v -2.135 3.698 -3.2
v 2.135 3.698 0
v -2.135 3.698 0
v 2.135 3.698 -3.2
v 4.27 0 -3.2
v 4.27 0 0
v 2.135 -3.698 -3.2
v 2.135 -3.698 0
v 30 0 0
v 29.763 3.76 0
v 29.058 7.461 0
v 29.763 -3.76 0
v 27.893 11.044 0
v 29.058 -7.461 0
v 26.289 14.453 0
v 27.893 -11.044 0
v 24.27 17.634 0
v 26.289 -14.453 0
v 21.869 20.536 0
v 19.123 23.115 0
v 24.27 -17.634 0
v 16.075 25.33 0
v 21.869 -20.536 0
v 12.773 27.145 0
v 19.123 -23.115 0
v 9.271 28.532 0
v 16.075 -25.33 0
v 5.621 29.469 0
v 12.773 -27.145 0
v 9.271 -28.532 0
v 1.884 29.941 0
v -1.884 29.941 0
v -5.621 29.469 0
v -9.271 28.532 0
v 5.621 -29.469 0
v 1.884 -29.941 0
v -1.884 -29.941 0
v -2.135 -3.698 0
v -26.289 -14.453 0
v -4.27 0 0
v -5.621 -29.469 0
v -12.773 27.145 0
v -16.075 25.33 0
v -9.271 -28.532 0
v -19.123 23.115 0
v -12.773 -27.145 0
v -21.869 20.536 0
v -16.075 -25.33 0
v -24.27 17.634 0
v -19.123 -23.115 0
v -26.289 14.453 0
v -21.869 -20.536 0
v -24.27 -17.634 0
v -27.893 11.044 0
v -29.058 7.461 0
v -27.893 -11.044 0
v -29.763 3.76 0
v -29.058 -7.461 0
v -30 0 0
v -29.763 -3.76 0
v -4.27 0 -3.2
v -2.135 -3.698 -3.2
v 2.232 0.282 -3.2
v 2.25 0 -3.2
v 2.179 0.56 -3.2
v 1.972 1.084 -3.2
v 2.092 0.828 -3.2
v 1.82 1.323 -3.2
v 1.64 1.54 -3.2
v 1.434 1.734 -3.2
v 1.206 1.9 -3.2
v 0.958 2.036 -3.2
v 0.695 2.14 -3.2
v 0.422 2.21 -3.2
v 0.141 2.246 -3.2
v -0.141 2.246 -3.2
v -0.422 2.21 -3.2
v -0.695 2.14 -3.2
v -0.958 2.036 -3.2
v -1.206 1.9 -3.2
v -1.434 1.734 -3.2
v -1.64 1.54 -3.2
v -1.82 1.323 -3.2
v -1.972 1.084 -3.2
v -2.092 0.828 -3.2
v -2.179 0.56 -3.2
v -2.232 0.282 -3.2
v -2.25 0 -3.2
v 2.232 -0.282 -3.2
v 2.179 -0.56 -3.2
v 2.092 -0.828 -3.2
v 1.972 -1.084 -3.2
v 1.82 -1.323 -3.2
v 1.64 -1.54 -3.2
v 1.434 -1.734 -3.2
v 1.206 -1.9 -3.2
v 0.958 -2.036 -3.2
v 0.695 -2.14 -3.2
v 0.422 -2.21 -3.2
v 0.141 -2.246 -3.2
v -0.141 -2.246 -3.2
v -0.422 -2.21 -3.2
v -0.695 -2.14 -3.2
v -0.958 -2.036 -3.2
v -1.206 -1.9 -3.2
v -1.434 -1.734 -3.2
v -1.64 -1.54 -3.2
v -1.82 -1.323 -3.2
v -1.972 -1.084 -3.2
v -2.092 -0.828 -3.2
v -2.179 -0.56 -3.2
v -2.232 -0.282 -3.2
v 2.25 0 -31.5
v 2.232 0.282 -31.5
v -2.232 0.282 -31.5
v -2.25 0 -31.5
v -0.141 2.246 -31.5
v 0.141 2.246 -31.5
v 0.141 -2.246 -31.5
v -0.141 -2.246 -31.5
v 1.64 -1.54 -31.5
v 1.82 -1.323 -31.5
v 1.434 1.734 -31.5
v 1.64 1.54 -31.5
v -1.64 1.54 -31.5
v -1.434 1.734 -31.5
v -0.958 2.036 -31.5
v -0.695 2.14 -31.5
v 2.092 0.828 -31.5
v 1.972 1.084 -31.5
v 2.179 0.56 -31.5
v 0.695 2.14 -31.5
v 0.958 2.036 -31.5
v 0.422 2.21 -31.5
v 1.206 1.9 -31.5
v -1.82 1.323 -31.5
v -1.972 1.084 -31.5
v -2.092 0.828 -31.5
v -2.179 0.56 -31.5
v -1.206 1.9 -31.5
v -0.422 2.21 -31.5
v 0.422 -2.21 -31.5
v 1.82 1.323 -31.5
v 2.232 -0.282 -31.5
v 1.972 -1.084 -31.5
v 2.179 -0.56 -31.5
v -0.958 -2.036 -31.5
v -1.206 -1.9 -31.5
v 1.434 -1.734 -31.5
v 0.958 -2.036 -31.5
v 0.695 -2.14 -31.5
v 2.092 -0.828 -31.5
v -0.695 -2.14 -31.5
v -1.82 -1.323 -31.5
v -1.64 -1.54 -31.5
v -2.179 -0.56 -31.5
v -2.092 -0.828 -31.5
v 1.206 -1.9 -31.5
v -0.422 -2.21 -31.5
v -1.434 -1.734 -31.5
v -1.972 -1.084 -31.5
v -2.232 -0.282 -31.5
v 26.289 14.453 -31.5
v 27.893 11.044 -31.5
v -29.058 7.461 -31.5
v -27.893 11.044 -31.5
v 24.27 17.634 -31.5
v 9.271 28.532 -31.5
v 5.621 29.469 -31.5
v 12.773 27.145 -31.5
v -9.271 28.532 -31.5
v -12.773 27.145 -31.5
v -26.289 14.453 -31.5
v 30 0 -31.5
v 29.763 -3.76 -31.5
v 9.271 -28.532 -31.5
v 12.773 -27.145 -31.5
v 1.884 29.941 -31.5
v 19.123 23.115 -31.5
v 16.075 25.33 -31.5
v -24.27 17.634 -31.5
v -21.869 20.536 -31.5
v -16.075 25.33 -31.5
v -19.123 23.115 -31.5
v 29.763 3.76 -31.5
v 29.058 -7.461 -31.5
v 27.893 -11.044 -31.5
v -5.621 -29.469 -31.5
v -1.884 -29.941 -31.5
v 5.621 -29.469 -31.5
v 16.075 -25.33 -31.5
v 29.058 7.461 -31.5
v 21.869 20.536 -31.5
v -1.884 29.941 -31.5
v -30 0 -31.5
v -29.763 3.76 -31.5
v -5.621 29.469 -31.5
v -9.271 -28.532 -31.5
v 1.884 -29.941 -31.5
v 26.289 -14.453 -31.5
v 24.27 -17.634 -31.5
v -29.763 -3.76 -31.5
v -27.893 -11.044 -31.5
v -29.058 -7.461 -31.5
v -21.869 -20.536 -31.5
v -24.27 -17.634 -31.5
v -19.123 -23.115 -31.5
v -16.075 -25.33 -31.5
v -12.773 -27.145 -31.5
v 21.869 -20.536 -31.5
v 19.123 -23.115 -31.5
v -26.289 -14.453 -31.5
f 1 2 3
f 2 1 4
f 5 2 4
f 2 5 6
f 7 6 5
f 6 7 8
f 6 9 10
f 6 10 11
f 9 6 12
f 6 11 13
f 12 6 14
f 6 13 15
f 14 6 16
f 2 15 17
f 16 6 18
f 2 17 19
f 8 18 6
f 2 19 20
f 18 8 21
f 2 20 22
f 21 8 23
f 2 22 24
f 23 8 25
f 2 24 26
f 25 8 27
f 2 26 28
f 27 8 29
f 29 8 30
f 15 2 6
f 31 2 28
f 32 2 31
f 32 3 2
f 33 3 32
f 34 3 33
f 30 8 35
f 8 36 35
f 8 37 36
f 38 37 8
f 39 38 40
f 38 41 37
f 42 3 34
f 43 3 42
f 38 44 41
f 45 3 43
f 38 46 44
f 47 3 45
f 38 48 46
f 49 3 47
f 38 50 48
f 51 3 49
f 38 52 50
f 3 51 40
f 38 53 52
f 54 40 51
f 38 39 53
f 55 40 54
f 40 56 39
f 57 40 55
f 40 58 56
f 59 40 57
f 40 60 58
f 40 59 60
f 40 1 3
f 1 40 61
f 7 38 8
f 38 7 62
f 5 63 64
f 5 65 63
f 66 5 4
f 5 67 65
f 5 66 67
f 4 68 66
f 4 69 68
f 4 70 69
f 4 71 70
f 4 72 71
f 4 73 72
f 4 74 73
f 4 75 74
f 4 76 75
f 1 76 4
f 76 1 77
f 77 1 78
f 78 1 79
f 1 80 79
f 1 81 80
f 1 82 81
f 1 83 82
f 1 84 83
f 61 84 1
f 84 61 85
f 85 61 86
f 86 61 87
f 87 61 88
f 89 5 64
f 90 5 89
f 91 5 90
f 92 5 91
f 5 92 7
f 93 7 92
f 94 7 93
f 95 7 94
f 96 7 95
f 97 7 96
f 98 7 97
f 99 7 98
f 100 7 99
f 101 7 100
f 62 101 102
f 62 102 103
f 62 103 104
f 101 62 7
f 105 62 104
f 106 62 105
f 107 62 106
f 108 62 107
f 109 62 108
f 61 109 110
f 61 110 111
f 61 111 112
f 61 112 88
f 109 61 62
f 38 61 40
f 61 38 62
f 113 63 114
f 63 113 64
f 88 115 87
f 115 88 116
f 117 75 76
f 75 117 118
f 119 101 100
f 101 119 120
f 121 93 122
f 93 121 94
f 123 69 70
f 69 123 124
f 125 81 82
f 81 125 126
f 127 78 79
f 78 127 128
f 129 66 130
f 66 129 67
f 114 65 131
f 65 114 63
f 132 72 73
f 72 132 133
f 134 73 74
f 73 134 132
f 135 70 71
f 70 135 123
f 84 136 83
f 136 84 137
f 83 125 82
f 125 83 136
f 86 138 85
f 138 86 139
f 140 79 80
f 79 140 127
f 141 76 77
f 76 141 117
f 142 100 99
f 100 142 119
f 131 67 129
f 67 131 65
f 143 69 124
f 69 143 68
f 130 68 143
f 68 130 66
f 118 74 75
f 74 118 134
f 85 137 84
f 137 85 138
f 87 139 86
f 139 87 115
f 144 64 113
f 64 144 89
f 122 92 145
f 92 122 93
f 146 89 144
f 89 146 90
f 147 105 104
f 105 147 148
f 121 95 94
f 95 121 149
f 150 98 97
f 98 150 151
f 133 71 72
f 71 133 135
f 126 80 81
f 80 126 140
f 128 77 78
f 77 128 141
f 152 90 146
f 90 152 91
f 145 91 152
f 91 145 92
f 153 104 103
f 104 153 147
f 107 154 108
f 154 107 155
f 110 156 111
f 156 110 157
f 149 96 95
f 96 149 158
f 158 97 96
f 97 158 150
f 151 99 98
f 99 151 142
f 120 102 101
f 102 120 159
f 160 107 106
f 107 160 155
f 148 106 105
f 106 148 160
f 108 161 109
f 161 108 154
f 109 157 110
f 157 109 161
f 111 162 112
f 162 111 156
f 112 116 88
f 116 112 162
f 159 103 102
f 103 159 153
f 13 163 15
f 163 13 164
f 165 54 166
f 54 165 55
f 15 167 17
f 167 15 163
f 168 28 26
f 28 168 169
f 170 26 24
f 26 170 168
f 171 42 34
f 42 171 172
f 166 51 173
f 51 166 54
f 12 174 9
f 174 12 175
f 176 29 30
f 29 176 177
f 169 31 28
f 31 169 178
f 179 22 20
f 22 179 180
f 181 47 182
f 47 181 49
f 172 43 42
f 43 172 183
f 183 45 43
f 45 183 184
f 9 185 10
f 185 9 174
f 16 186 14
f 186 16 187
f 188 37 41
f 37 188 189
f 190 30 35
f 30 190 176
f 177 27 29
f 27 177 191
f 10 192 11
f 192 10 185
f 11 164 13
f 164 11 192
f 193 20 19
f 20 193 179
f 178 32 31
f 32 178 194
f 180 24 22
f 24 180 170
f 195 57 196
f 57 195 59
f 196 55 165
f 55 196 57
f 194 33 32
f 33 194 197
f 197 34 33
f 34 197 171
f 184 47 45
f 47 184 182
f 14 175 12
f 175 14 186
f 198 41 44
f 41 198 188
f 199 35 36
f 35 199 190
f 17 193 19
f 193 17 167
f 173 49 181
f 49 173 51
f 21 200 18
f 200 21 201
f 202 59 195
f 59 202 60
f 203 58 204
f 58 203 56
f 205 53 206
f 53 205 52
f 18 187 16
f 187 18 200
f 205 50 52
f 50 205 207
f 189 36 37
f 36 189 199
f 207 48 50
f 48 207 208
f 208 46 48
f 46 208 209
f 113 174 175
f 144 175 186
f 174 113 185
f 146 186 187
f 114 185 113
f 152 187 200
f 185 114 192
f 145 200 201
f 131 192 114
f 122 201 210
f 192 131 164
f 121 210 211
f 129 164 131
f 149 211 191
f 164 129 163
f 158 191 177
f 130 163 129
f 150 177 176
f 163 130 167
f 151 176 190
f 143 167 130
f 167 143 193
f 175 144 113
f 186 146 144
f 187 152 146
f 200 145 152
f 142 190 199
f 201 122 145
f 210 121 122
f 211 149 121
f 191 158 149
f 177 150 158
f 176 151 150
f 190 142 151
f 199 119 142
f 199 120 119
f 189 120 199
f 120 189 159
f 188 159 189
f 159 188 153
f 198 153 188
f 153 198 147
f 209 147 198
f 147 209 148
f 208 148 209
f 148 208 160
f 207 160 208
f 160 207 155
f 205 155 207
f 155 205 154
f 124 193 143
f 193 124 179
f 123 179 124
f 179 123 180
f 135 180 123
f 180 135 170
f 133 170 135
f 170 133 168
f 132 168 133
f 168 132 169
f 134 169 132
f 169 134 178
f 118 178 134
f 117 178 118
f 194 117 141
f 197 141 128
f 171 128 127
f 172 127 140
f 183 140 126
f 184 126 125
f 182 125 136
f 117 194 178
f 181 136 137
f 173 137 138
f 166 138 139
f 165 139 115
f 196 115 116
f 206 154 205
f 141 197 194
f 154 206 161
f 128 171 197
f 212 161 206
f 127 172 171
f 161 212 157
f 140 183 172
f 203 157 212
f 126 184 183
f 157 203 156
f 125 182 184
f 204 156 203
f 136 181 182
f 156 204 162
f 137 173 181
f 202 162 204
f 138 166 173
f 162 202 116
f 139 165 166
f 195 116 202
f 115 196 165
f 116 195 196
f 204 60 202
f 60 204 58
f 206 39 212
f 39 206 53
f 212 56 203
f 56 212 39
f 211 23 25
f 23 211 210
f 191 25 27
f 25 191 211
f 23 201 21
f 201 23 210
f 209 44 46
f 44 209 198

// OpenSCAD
$fn = 50;

difference() {
	union() {
		translate(v = [0, 0, -31.5]) {
			cylinder(h = 31.5, r = 30.0);
		}
	}
	union() {
		translate(v = [0, 0, 0]) {
			rotate(a = [0, 0, 0]) {
				difference() {
					union() {
						translate(v = [0, 0, -3.2]) {
							linear_extrude(height = 3.2) {
								polygon(points = [[4.2698, 0.0], [2.1349000000000005, 3.697755269078796], [-2.134899999999999, 3.6977552690787965], [-4.2698, 5.228996902999369e-16], [-2.134900000000002, -3.6977552690787956], [2.1348999999999974, -3.697755269078798]]);
							}
						}
					}
					union();
				}
			}
		}
		#translate(v = [0, 0, -100.0]) {
			cylinder(h = 200, r = 2.25);
		}
	}
}
